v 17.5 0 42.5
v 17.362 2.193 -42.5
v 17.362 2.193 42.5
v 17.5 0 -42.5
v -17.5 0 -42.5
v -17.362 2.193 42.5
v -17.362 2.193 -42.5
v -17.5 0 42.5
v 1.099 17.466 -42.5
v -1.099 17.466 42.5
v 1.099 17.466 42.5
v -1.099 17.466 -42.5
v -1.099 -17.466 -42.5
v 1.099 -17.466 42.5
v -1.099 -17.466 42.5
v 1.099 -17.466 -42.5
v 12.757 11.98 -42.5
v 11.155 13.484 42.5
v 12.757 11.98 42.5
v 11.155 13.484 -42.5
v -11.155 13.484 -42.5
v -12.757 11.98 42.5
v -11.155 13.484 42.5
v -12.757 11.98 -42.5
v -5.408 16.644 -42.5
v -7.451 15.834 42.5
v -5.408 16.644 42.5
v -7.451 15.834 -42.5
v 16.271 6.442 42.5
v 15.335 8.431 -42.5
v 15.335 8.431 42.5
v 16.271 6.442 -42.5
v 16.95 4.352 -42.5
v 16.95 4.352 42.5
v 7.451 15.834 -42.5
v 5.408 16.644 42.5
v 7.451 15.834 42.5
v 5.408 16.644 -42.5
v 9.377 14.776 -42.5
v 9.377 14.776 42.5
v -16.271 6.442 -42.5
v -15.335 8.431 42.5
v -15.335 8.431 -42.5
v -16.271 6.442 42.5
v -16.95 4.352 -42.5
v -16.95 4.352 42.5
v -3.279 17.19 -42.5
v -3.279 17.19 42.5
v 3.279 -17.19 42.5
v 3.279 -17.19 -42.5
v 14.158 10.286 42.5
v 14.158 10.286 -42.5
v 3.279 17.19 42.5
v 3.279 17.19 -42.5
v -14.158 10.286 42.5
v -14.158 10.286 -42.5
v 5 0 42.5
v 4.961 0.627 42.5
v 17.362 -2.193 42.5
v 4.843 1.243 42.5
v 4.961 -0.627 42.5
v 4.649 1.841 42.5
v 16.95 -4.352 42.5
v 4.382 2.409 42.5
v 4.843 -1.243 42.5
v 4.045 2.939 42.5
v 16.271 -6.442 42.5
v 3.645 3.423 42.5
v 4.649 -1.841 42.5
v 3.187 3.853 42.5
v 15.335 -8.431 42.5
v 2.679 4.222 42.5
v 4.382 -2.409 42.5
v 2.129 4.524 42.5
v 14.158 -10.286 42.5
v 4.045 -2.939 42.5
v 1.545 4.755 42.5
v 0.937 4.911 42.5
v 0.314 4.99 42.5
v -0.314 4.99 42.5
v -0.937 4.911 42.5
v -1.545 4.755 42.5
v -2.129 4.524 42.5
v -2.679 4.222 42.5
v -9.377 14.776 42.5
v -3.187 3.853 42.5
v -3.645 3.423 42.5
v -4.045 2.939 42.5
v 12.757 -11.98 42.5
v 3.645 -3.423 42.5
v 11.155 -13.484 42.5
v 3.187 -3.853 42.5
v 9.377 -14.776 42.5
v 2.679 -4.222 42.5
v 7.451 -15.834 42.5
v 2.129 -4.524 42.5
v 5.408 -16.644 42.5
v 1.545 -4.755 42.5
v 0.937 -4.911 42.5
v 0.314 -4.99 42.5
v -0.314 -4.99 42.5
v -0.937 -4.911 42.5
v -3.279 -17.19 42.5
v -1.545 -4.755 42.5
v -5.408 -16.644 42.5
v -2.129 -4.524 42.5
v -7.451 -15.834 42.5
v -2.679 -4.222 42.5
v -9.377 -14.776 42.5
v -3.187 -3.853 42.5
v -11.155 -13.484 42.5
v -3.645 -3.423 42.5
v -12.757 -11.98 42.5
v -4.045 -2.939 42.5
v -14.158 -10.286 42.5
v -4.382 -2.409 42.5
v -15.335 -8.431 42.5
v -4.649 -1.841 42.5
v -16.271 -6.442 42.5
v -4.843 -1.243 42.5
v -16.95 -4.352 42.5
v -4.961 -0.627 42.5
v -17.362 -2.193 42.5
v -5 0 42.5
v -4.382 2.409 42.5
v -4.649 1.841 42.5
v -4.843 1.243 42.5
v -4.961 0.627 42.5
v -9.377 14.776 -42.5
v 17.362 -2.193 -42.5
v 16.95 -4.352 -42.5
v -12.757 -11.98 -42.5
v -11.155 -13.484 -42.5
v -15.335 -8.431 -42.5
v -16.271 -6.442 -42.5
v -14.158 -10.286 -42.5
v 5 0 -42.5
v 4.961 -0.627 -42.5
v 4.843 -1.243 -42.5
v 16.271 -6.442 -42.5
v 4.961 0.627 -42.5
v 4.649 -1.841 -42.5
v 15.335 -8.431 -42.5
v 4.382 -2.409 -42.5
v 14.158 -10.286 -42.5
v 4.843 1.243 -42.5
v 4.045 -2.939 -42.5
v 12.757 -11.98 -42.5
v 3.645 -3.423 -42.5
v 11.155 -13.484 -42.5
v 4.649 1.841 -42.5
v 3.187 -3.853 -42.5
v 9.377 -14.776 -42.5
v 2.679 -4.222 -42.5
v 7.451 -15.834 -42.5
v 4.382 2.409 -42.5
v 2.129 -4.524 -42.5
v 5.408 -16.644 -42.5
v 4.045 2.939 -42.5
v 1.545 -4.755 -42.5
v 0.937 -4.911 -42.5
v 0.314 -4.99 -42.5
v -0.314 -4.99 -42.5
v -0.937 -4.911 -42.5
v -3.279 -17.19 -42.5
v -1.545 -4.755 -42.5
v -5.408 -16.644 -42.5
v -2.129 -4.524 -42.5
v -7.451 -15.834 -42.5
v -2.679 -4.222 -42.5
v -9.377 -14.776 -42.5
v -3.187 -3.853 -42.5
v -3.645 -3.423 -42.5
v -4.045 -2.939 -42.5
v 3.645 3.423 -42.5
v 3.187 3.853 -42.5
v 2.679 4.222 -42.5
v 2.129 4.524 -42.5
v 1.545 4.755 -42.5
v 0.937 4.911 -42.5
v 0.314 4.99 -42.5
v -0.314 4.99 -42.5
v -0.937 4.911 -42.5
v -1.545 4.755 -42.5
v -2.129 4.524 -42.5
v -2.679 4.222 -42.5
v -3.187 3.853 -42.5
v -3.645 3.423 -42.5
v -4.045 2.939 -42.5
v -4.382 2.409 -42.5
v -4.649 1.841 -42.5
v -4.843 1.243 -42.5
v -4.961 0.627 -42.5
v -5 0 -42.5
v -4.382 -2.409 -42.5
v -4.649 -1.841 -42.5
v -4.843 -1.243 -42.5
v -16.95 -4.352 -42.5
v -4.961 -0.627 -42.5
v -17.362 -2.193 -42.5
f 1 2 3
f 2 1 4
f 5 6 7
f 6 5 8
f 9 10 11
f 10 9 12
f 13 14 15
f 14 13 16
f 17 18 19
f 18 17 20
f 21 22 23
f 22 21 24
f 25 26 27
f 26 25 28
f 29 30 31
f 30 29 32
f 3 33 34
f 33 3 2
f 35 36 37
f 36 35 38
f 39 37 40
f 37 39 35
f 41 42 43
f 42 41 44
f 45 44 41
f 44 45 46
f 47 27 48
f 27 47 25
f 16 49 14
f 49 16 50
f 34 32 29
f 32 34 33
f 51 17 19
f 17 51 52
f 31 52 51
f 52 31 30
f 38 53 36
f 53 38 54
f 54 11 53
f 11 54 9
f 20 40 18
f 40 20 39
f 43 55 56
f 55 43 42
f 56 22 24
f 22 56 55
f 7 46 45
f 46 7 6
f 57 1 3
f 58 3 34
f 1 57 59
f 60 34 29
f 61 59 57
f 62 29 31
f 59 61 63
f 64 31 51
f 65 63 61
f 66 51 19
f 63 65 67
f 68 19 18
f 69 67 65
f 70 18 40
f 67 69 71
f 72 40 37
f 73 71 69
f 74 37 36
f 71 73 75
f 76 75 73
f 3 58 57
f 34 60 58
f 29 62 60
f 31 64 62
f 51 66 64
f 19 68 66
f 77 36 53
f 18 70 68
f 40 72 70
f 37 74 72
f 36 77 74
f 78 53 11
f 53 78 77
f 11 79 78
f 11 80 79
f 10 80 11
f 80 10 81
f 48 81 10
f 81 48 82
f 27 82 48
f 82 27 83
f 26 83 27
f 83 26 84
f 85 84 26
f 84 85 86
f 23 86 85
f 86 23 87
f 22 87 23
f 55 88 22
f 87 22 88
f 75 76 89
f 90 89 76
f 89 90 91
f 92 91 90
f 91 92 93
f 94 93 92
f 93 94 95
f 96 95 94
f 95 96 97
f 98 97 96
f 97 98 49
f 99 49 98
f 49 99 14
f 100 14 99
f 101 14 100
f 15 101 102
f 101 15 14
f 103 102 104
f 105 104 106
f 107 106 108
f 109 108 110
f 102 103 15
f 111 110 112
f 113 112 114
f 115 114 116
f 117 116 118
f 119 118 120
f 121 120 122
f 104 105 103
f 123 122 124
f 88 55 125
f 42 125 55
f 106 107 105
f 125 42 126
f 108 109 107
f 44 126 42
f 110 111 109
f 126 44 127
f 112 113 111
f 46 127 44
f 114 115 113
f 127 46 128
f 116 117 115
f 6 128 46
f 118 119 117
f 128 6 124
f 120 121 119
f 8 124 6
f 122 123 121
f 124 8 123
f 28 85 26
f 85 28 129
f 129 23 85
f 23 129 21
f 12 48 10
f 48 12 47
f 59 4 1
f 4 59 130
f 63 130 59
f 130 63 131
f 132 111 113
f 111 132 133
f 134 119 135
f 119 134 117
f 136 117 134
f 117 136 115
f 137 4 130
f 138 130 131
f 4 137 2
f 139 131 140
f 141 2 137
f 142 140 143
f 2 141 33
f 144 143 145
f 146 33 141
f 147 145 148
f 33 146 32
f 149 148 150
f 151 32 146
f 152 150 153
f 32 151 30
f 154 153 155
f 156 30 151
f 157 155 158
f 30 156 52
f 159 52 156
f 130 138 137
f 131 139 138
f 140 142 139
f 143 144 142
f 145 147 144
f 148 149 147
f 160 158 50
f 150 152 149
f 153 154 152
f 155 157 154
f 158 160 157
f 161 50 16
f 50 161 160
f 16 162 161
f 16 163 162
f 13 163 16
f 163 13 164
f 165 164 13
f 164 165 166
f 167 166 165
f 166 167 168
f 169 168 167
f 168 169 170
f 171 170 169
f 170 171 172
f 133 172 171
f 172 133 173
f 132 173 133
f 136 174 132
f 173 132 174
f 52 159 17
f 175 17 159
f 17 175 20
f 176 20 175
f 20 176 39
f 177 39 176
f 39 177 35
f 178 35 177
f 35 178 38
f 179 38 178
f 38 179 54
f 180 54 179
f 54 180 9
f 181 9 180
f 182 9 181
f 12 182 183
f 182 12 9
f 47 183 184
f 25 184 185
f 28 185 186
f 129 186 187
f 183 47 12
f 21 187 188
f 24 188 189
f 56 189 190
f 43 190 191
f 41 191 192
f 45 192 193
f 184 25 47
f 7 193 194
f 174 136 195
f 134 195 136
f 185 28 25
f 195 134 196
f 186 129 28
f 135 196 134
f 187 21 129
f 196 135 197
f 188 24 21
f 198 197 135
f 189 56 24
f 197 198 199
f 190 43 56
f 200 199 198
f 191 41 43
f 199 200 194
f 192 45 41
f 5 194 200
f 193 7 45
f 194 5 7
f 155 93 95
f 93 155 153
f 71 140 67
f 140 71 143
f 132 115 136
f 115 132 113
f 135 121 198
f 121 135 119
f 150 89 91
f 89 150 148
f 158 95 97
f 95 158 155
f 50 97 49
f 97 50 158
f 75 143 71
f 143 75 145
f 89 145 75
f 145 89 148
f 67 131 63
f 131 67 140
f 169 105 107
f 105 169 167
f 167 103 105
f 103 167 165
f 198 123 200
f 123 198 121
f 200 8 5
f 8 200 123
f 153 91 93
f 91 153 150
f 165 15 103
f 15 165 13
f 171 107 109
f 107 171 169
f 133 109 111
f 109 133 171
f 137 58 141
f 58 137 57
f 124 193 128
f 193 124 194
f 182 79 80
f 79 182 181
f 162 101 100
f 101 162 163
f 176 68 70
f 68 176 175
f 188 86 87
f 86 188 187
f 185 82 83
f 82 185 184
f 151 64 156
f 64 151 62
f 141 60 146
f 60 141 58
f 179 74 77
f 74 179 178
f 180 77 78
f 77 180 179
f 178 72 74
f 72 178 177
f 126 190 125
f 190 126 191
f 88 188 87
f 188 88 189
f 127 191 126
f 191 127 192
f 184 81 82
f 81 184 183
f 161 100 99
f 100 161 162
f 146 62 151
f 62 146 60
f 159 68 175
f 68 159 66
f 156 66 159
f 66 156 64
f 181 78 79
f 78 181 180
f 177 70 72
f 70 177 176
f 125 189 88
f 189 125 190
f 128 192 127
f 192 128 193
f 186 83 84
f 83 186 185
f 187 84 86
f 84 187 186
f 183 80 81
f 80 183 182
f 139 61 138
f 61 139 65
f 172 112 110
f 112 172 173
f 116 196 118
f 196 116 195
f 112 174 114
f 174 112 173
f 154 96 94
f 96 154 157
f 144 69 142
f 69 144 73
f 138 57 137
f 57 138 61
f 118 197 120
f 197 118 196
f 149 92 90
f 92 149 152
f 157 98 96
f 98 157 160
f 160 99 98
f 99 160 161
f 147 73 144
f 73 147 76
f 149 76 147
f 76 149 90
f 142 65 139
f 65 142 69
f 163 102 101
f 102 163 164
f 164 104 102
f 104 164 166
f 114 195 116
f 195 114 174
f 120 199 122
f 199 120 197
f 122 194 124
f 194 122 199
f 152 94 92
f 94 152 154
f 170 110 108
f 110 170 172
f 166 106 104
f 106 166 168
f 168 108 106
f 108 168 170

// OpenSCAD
$fn = 50;


difference() {
	union() {
		translate(v = [0, 0, -42.5000000000]) {
			cylinder(h = 85, r = 17.5000000000);
		}
	}
	union() {
		translate(v = [0, 0, -100.0000000000]) {
			cylinder(h = 200, r = 5);
		}
	}
}
